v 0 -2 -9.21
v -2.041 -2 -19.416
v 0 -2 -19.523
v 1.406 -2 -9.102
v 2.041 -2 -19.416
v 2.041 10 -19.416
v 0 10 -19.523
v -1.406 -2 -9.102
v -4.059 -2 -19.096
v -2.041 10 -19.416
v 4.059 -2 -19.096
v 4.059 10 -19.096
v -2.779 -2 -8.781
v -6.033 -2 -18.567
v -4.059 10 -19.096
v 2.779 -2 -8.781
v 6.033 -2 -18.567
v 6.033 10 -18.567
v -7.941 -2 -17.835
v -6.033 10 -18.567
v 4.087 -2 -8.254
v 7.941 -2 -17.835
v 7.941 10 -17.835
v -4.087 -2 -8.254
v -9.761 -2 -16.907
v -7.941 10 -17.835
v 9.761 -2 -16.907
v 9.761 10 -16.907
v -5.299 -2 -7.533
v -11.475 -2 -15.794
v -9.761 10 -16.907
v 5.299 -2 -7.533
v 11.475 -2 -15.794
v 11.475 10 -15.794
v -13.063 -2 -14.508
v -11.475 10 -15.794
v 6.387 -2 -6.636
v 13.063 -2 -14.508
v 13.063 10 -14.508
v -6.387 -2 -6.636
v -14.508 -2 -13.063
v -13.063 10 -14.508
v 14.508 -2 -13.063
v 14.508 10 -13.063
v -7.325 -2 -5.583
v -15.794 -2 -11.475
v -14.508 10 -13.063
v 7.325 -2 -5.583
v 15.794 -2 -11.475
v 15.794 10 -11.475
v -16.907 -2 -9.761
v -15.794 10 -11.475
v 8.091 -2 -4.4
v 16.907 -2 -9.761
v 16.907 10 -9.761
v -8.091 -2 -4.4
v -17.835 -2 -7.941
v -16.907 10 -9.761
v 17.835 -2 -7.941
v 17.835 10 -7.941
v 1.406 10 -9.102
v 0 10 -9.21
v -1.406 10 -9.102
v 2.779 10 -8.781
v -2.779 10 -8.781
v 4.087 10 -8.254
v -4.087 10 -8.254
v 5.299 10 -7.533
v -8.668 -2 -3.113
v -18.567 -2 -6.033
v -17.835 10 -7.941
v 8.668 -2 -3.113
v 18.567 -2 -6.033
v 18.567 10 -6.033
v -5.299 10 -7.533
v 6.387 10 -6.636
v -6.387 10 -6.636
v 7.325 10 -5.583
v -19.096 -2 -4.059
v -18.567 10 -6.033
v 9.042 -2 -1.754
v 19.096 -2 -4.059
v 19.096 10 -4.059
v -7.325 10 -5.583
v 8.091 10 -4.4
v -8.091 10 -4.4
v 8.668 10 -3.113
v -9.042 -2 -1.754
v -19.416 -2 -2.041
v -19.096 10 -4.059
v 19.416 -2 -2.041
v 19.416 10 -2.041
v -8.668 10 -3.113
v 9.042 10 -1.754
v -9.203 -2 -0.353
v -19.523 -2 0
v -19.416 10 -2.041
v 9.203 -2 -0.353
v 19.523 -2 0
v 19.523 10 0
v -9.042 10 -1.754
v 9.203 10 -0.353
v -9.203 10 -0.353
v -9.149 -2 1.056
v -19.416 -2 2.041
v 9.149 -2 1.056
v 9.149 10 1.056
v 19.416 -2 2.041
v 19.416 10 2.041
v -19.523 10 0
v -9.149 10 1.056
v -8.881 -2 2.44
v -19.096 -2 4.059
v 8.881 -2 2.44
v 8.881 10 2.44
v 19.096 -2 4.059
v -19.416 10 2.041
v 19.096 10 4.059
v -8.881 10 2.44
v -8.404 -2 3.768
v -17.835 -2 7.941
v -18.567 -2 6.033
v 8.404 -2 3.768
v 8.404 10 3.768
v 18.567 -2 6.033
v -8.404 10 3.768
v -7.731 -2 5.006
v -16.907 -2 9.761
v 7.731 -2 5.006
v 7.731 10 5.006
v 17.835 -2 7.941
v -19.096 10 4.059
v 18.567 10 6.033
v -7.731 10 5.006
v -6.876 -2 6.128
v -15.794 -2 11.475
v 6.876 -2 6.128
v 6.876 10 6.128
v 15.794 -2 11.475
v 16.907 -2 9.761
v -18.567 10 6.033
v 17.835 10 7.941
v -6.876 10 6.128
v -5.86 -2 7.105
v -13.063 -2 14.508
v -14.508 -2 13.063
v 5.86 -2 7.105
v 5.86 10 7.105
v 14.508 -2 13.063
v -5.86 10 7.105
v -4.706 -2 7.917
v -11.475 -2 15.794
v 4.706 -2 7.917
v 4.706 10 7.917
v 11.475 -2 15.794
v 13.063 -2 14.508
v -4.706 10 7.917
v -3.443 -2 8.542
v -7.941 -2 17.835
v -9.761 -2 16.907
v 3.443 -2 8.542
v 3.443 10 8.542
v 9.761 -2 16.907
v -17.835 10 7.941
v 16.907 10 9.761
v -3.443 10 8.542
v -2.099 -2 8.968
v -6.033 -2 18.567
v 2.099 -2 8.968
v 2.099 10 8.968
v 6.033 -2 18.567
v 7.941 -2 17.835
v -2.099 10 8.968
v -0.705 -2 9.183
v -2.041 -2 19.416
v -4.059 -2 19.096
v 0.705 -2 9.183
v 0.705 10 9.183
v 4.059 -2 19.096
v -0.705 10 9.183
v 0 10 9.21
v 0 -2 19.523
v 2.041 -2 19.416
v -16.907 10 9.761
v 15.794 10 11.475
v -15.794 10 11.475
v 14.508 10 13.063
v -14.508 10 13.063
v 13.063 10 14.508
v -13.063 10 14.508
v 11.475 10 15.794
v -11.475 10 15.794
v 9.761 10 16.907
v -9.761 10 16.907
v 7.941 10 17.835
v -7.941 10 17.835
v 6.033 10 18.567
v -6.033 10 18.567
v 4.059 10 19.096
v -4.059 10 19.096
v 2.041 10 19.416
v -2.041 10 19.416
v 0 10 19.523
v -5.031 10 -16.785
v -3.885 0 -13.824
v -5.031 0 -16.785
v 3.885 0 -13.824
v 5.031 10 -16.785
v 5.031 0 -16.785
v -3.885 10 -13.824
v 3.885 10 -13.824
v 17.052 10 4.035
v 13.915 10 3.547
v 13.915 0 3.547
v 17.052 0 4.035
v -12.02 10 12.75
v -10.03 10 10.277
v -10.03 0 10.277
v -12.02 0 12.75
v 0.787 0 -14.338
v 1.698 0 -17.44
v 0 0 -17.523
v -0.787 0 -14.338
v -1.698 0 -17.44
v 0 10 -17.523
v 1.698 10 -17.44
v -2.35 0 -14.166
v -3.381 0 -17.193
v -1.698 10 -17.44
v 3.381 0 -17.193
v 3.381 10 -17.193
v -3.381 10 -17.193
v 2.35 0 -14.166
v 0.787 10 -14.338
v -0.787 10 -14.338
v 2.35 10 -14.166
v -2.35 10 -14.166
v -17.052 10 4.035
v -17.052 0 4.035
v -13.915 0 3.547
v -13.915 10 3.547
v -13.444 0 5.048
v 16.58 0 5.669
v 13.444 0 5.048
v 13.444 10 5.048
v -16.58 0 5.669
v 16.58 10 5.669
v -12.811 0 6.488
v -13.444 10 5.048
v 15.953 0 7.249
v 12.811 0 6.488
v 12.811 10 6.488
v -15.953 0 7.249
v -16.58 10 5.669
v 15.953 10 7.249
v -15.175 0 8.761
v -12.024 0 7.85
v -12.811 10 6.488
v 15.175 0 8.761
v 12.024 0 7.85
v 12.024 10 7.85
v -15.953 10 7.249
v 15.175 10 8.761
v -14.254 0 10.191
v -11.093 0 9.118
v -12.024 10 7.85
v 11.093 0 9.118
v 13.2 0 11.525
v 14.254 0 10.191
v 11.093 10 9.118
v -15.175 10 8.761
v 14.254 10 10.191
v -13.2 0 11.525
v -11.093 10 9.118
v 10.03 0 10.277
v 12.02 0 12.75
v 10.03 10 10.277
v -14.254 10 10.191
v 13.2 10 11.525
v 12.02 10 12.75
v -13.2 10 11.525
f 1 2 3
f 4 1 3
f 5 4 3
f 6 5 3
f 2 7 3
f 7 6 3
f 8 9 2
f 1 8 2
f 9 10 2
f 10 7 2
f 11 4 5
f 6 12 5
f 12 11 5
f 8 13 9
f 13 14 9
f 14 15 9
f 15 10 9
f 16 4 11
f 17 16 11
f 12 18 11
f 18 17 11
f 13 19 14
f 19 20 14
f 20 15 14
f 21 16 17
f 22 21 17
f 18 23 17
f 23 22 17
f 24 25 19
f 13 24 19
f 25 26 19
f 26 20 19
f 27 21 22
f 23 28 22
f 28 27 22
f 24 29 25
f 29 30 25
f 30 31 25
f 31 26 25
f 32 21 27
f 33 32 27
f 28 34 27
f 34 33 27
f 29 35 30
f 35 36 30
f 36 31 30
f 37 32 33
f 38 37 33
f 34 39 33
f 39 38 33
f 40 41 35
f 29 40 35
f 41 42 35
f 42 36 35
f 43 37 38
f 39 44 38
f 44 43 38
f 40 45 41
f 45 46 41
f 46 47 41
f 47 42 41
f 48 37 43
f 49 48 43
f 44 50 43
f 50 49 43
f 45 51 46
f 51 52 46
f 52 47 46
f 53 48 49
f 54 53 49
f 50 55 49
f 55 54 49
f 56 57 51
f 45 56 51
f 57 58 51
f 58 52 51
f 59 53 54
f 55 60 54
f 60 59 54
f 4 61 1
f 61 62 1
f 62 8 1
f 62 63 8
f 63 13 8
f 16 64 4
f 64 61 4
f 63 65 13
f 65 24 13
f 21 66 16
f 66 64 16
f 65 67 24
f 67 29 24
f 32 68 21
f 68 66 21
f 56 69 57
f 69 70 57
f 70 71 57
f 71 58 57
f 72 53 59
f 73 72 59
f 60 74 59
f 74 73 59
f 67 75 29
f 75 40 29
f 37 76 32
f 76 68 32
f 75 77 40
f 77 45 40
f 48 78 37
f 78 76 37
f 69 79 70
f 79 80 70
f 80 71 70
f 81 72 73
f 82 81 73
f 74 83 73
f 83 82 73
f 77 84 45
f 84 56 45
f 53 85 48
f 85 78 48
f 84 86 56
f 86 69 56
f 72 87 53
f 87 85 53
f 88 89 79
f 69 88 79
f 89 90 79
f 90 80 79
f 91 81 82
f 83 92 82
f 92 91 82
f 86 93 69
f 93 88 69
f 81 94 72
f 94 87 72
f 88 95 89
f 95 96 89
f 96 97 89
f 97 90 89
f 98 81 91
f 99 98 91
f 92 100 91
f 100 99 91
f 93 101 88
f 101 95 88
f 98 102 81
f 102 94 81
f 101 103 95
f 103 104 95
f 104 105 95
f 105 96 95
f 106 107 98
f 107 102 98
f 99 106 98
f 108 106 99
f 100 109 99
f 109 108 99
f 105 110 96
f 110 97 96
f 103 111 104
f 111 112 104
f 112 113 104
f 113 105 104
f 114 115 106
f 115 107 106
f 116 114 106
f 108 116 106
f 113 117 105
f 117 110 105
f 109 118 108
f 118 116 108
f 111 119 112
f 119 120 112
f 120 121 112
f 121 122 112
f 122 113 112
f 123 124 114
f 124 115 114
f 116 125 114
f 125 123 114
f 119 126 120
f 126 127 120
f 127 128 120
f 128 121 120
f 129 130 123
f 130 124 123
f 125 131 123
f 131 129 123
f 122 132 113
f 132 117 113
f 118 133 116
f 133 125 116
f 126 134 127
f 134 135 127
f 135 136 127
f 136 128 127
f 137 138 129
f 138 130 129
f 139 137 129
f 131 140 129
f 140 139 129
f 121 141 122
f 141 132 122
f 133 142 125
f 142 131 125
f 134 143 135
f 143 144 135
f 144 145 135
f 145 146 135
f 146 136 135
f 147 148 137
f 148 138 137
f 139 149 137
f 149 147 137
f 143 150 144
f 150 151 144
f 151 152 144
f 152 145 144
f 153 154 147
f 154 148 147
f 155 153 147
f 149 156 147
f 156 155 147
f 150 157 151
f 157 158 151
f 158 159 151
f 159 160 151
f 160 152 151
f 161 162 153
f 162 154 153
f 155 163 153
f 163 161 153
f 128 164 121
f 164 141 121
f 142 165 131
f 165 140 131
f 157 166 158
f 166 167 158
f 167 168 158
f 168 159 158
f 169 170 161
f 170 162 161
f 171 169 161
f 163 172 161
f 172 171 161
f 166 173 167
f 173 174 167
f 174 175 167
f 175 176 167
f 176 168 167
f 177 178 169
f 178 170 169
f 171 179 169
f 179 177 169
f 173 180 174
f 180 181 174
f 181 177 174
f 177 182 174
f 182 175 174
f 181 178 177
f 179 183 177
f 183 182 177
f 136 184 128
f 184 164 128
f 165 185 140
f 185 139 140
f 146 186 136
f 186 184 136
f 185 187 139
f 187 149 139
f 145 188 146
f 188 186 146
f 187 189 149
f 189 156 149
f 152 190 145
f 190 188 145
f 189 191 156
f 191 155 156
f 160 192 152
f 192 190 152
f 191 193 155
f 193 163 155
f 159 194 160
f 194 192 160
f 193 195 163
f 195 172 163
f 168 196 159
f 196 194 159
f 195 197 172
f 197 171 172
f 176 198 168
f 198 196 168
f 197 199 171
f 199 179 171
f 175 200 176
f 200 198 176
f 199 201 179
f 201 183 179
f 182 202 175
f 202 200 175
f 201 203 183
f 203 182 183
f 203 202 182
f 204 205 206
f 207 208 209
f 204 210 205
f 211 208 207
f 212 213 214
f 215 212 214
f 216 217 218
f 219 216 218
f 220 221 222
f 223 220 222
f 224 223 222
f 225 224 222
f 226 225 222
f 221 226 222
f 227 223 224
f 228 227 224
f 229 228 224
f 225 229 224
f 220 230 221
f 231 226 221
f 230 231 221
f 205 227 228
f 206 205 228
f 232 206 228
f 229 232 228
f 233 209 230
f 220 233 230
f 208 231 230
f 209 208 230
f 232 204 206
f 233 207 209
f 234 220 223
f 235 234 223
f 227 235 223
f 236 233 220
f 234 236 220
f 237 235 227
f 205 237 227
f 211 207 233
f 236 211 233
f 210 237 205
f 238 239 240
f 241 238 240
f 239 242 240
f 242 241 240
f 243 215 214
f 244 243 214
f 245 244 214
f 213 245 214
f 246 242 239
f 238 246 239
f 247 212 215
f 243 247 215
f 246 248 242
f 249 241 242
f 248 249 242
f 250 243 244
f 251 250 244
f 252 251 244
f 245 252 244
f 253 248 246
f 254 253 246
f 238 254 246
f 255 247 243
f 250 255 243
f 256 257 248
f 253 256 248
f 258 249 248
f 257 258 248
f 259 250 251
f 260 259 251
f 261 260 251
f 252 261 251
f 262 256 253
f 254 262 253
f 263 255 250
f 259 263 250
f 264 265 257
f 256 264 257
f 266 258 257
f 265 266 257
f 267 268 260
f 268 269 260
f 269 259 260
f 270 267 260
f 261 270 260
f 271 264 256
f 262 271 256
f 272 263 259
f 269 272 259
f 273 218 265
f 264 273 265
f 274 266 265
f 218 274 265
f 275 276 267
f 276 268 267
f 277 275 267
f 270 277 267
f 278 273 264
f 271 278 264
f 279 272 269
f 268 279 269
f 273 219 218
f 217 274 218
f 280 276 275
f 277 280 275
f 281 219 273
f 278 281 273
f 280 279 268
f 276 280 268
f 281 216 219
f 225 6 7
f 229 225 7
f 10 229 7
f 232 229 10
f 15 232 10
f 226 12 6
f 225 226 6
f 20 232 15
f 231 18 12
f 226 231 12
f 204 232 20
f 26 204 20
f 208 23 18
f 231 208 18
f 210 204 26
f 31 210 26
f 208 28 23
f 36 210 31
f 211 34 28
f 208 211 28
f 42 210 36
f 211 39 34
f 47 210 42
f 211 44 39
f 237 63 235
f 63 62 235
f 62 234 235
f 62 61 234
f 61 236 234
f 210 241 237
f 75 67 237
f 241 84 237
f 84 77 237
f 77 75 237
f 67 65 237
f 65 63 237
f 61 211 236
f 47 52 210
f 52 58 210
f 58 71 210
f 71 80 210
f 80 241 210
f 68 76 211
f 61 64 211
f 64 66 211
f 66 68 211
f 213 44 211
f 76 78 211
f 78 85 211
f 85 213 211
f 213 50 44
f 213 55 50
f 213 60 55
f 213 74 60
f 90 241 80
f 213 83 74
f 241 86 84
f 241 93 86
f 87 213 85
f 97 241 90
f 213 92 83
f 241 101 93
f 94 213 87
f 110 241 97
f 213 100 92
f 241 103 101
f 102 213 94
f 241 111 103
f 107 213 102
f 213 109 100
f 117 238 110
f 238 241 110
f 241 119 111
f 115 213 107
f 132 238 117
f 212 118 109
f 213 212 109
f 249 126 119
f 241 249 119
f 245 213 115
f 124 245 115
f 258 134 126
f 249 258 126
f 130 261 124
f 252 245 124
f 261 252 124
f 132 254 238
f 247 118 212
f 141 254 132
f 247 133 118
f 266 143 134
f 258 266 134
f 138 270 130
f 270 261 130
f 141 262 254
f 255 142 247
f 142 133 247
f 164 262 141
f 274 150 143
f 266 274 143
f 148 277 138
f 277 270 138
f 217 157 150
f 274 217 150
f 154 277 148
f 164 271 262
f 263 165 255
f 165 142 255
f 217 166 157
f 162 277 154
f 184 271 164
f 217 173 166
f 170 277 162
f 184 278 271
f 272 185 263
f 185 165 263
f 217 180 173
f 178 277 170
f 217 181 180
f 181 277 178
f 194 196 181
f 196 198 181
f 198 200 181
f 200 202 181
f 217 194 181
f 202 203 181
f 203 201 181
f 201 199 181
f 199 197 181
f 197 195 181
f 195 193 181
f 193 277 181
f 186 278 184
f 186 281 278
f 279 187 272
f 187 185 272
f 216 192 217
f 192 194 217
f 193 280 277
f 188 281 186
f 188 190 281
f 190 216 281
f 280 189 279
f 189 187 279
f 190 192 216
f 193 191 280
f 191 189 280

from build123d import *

# Parameters (mm, degrees)
SKETCH1_R           = 19.36
BOSS_EXTRUDE1_DEPTH = 10
CUT_EXTRUDE1_REACH  = 12
CUT_EXTRUDE2_REACH  = 12
SKETCH3_R           = 9.21
SKETCH4_R           = 19.36
SKETCH4_R_2         = 9.21
BOSS_EXTRUDE2_DEPTH = 2
SKETCH5_R           = 19.522617412
SKETCH5_R_2         = 17.522617412
BOSS_EXTRUDE3_DEPTH = 12


with BuildPart() as part:
    # Sketch1 → Boss-Extrude1 (new body)
    with BuildSketch(Plane(origin=(0, 0, 0), x_dir=(1, 0, 0), z_dir=(0, 1, 0))):
        Circle(SKETCH1_R)
    extrude(amount=BOSS_EXTRUDE1_DEPTH)

    # Sketch2 → Cut-Extrude1 (cut, up to next)
    with BuildSketch(Plane.XZ, mode=Mode.PRIVATE) as cut_extrude1_sk1:
        with BuildLine():
            Line((13.175859246, 14.184721821), (10.029502225, 10.277095169))
            ThreePointArc((10.029502225, 10.277095169), (12.436124798, 7.18), (13.914976606, 3.54725613))
            Line((13.914976606, 3.54725613), (18.872259065, 4.318267913))
            ThreePointArc((18.872259065, 4.318267913), (16.766251817, 9.68), (13.175859246, 14.184721821))
        make_face()
    cut_extrude1_tool1 = extrude(cut_extrude1_sk1.sketch, amount=-CUT_EXTRUDE1_REACH, mode=Mode.PRIVATE) & part.part
    add(cut_extrude1_tool1.solids().sort_by_distance((14.534106, 0, 8.39127))[0], mode=Mode.SUBTRACT)
    # Sketch2 → Cut-Extrude1 (cut, up to next)
    with BuildSketch(Plane.XZ, mode=Mode.PRIVATE) as cut_extrude1_sk2:
        with BuildLine():
            ThreePointArc((-13.914976606, 3.54725613), (-12.436124798, 7.18), (-10.029502225, 10.277095169))
            Line((-10.029502225, 10.277095169), (-13.175859246, 14.184721821))
            ThreePointArc((-13.175859246, 14.184721821), (-16.766251817, 9.68), (-18.872259065, 4.318267913))
            Line((-18.872259065, 4.318267913), (-13.914976606, 3.54725613))
        make_face()
    cut_extrude1_tool2 = extrude(cut_extrude1_sk2.sketch, amount=-CUT_EXTRUDE1_REACH, mode=Mode.PRIVATE) & part.part
    add(cut_extrude1_tool2.solids().sort_by_distance((-14.534106, 0, 8.39127))[0], mode=Mode.SUBTRACT)
    # Sketch2 → Cut-Extrude1 (cut, up to next)
    with BuildSketch(Plane.XZ, mode=Mode.PRIVATE) as cut_extrude1_sk3:
        with BuildLine():
            Line((5.69639982, -18.502989734), (3.885474381, -13.824351299))
            ThreePointArc((3.885474381, -13.824351299), (0, -14.36), (-3.885474381, -13.824351299))
            Line((-3.885474381, -13.824351299), (-5.69639982, -18.502989734))
            ThreePointArc((-5.69639982, -18.502989734), (0, -19.36), (5.69639982, -18.502989734))
        make_face()
    cut_extrude1_tool3 = extrude(cut_extrude1_sk3.sketch, amount=-CUT_EXTRUDE1_REACH, mode=Mode.PRIVATE) & part.part
    add(cut_extrude1_tool3.solids().sort_by_distance((0, 0, -16.782541))[0], mode=Mode.SUBTRACT)

    # Sketch3 → Cut-Extrude2 (cut, up to next)
    with BuildSketch(Plane.XZ, mode=Mode.PRIVATE) as cut_extrude2_sk1:
        Circle(SKETCH3_R)
    cut_extrude2_tool1 = extrude(cut_extrude2_sk1.sketch, amount=-CUT_EXTRUDE2_REACH, mode=Mode.PRIVATE) & part.part
    add(cut_extrude2_tool1.solids().sort_by_distance((0, 0, 0))[0], mode=Mode.SUBTRACT)

    # Sketch4 → Boss-Extrude2 (add)
    with BuildSketch(Plane.XZ):
        Circle(SKETCH4_R)
        Circle(SKETCH4_R_2, mode=Mode.SUBTRACT)
    extrude(amount=BOSS_EXTRUDE2_DEPTH)

    # Sketch5 → Boss-Extrude3 (add)
    with BuildSketch(Plane.XZ.offset(2)):
        Circle(SKETCH5_R)
        Circle(SKETCH5_R_2, mode=Mode.SUBTRACT)
    extrude(amount=-BOSS_EXTRUDE3_DEPTH)


solid = part.part
